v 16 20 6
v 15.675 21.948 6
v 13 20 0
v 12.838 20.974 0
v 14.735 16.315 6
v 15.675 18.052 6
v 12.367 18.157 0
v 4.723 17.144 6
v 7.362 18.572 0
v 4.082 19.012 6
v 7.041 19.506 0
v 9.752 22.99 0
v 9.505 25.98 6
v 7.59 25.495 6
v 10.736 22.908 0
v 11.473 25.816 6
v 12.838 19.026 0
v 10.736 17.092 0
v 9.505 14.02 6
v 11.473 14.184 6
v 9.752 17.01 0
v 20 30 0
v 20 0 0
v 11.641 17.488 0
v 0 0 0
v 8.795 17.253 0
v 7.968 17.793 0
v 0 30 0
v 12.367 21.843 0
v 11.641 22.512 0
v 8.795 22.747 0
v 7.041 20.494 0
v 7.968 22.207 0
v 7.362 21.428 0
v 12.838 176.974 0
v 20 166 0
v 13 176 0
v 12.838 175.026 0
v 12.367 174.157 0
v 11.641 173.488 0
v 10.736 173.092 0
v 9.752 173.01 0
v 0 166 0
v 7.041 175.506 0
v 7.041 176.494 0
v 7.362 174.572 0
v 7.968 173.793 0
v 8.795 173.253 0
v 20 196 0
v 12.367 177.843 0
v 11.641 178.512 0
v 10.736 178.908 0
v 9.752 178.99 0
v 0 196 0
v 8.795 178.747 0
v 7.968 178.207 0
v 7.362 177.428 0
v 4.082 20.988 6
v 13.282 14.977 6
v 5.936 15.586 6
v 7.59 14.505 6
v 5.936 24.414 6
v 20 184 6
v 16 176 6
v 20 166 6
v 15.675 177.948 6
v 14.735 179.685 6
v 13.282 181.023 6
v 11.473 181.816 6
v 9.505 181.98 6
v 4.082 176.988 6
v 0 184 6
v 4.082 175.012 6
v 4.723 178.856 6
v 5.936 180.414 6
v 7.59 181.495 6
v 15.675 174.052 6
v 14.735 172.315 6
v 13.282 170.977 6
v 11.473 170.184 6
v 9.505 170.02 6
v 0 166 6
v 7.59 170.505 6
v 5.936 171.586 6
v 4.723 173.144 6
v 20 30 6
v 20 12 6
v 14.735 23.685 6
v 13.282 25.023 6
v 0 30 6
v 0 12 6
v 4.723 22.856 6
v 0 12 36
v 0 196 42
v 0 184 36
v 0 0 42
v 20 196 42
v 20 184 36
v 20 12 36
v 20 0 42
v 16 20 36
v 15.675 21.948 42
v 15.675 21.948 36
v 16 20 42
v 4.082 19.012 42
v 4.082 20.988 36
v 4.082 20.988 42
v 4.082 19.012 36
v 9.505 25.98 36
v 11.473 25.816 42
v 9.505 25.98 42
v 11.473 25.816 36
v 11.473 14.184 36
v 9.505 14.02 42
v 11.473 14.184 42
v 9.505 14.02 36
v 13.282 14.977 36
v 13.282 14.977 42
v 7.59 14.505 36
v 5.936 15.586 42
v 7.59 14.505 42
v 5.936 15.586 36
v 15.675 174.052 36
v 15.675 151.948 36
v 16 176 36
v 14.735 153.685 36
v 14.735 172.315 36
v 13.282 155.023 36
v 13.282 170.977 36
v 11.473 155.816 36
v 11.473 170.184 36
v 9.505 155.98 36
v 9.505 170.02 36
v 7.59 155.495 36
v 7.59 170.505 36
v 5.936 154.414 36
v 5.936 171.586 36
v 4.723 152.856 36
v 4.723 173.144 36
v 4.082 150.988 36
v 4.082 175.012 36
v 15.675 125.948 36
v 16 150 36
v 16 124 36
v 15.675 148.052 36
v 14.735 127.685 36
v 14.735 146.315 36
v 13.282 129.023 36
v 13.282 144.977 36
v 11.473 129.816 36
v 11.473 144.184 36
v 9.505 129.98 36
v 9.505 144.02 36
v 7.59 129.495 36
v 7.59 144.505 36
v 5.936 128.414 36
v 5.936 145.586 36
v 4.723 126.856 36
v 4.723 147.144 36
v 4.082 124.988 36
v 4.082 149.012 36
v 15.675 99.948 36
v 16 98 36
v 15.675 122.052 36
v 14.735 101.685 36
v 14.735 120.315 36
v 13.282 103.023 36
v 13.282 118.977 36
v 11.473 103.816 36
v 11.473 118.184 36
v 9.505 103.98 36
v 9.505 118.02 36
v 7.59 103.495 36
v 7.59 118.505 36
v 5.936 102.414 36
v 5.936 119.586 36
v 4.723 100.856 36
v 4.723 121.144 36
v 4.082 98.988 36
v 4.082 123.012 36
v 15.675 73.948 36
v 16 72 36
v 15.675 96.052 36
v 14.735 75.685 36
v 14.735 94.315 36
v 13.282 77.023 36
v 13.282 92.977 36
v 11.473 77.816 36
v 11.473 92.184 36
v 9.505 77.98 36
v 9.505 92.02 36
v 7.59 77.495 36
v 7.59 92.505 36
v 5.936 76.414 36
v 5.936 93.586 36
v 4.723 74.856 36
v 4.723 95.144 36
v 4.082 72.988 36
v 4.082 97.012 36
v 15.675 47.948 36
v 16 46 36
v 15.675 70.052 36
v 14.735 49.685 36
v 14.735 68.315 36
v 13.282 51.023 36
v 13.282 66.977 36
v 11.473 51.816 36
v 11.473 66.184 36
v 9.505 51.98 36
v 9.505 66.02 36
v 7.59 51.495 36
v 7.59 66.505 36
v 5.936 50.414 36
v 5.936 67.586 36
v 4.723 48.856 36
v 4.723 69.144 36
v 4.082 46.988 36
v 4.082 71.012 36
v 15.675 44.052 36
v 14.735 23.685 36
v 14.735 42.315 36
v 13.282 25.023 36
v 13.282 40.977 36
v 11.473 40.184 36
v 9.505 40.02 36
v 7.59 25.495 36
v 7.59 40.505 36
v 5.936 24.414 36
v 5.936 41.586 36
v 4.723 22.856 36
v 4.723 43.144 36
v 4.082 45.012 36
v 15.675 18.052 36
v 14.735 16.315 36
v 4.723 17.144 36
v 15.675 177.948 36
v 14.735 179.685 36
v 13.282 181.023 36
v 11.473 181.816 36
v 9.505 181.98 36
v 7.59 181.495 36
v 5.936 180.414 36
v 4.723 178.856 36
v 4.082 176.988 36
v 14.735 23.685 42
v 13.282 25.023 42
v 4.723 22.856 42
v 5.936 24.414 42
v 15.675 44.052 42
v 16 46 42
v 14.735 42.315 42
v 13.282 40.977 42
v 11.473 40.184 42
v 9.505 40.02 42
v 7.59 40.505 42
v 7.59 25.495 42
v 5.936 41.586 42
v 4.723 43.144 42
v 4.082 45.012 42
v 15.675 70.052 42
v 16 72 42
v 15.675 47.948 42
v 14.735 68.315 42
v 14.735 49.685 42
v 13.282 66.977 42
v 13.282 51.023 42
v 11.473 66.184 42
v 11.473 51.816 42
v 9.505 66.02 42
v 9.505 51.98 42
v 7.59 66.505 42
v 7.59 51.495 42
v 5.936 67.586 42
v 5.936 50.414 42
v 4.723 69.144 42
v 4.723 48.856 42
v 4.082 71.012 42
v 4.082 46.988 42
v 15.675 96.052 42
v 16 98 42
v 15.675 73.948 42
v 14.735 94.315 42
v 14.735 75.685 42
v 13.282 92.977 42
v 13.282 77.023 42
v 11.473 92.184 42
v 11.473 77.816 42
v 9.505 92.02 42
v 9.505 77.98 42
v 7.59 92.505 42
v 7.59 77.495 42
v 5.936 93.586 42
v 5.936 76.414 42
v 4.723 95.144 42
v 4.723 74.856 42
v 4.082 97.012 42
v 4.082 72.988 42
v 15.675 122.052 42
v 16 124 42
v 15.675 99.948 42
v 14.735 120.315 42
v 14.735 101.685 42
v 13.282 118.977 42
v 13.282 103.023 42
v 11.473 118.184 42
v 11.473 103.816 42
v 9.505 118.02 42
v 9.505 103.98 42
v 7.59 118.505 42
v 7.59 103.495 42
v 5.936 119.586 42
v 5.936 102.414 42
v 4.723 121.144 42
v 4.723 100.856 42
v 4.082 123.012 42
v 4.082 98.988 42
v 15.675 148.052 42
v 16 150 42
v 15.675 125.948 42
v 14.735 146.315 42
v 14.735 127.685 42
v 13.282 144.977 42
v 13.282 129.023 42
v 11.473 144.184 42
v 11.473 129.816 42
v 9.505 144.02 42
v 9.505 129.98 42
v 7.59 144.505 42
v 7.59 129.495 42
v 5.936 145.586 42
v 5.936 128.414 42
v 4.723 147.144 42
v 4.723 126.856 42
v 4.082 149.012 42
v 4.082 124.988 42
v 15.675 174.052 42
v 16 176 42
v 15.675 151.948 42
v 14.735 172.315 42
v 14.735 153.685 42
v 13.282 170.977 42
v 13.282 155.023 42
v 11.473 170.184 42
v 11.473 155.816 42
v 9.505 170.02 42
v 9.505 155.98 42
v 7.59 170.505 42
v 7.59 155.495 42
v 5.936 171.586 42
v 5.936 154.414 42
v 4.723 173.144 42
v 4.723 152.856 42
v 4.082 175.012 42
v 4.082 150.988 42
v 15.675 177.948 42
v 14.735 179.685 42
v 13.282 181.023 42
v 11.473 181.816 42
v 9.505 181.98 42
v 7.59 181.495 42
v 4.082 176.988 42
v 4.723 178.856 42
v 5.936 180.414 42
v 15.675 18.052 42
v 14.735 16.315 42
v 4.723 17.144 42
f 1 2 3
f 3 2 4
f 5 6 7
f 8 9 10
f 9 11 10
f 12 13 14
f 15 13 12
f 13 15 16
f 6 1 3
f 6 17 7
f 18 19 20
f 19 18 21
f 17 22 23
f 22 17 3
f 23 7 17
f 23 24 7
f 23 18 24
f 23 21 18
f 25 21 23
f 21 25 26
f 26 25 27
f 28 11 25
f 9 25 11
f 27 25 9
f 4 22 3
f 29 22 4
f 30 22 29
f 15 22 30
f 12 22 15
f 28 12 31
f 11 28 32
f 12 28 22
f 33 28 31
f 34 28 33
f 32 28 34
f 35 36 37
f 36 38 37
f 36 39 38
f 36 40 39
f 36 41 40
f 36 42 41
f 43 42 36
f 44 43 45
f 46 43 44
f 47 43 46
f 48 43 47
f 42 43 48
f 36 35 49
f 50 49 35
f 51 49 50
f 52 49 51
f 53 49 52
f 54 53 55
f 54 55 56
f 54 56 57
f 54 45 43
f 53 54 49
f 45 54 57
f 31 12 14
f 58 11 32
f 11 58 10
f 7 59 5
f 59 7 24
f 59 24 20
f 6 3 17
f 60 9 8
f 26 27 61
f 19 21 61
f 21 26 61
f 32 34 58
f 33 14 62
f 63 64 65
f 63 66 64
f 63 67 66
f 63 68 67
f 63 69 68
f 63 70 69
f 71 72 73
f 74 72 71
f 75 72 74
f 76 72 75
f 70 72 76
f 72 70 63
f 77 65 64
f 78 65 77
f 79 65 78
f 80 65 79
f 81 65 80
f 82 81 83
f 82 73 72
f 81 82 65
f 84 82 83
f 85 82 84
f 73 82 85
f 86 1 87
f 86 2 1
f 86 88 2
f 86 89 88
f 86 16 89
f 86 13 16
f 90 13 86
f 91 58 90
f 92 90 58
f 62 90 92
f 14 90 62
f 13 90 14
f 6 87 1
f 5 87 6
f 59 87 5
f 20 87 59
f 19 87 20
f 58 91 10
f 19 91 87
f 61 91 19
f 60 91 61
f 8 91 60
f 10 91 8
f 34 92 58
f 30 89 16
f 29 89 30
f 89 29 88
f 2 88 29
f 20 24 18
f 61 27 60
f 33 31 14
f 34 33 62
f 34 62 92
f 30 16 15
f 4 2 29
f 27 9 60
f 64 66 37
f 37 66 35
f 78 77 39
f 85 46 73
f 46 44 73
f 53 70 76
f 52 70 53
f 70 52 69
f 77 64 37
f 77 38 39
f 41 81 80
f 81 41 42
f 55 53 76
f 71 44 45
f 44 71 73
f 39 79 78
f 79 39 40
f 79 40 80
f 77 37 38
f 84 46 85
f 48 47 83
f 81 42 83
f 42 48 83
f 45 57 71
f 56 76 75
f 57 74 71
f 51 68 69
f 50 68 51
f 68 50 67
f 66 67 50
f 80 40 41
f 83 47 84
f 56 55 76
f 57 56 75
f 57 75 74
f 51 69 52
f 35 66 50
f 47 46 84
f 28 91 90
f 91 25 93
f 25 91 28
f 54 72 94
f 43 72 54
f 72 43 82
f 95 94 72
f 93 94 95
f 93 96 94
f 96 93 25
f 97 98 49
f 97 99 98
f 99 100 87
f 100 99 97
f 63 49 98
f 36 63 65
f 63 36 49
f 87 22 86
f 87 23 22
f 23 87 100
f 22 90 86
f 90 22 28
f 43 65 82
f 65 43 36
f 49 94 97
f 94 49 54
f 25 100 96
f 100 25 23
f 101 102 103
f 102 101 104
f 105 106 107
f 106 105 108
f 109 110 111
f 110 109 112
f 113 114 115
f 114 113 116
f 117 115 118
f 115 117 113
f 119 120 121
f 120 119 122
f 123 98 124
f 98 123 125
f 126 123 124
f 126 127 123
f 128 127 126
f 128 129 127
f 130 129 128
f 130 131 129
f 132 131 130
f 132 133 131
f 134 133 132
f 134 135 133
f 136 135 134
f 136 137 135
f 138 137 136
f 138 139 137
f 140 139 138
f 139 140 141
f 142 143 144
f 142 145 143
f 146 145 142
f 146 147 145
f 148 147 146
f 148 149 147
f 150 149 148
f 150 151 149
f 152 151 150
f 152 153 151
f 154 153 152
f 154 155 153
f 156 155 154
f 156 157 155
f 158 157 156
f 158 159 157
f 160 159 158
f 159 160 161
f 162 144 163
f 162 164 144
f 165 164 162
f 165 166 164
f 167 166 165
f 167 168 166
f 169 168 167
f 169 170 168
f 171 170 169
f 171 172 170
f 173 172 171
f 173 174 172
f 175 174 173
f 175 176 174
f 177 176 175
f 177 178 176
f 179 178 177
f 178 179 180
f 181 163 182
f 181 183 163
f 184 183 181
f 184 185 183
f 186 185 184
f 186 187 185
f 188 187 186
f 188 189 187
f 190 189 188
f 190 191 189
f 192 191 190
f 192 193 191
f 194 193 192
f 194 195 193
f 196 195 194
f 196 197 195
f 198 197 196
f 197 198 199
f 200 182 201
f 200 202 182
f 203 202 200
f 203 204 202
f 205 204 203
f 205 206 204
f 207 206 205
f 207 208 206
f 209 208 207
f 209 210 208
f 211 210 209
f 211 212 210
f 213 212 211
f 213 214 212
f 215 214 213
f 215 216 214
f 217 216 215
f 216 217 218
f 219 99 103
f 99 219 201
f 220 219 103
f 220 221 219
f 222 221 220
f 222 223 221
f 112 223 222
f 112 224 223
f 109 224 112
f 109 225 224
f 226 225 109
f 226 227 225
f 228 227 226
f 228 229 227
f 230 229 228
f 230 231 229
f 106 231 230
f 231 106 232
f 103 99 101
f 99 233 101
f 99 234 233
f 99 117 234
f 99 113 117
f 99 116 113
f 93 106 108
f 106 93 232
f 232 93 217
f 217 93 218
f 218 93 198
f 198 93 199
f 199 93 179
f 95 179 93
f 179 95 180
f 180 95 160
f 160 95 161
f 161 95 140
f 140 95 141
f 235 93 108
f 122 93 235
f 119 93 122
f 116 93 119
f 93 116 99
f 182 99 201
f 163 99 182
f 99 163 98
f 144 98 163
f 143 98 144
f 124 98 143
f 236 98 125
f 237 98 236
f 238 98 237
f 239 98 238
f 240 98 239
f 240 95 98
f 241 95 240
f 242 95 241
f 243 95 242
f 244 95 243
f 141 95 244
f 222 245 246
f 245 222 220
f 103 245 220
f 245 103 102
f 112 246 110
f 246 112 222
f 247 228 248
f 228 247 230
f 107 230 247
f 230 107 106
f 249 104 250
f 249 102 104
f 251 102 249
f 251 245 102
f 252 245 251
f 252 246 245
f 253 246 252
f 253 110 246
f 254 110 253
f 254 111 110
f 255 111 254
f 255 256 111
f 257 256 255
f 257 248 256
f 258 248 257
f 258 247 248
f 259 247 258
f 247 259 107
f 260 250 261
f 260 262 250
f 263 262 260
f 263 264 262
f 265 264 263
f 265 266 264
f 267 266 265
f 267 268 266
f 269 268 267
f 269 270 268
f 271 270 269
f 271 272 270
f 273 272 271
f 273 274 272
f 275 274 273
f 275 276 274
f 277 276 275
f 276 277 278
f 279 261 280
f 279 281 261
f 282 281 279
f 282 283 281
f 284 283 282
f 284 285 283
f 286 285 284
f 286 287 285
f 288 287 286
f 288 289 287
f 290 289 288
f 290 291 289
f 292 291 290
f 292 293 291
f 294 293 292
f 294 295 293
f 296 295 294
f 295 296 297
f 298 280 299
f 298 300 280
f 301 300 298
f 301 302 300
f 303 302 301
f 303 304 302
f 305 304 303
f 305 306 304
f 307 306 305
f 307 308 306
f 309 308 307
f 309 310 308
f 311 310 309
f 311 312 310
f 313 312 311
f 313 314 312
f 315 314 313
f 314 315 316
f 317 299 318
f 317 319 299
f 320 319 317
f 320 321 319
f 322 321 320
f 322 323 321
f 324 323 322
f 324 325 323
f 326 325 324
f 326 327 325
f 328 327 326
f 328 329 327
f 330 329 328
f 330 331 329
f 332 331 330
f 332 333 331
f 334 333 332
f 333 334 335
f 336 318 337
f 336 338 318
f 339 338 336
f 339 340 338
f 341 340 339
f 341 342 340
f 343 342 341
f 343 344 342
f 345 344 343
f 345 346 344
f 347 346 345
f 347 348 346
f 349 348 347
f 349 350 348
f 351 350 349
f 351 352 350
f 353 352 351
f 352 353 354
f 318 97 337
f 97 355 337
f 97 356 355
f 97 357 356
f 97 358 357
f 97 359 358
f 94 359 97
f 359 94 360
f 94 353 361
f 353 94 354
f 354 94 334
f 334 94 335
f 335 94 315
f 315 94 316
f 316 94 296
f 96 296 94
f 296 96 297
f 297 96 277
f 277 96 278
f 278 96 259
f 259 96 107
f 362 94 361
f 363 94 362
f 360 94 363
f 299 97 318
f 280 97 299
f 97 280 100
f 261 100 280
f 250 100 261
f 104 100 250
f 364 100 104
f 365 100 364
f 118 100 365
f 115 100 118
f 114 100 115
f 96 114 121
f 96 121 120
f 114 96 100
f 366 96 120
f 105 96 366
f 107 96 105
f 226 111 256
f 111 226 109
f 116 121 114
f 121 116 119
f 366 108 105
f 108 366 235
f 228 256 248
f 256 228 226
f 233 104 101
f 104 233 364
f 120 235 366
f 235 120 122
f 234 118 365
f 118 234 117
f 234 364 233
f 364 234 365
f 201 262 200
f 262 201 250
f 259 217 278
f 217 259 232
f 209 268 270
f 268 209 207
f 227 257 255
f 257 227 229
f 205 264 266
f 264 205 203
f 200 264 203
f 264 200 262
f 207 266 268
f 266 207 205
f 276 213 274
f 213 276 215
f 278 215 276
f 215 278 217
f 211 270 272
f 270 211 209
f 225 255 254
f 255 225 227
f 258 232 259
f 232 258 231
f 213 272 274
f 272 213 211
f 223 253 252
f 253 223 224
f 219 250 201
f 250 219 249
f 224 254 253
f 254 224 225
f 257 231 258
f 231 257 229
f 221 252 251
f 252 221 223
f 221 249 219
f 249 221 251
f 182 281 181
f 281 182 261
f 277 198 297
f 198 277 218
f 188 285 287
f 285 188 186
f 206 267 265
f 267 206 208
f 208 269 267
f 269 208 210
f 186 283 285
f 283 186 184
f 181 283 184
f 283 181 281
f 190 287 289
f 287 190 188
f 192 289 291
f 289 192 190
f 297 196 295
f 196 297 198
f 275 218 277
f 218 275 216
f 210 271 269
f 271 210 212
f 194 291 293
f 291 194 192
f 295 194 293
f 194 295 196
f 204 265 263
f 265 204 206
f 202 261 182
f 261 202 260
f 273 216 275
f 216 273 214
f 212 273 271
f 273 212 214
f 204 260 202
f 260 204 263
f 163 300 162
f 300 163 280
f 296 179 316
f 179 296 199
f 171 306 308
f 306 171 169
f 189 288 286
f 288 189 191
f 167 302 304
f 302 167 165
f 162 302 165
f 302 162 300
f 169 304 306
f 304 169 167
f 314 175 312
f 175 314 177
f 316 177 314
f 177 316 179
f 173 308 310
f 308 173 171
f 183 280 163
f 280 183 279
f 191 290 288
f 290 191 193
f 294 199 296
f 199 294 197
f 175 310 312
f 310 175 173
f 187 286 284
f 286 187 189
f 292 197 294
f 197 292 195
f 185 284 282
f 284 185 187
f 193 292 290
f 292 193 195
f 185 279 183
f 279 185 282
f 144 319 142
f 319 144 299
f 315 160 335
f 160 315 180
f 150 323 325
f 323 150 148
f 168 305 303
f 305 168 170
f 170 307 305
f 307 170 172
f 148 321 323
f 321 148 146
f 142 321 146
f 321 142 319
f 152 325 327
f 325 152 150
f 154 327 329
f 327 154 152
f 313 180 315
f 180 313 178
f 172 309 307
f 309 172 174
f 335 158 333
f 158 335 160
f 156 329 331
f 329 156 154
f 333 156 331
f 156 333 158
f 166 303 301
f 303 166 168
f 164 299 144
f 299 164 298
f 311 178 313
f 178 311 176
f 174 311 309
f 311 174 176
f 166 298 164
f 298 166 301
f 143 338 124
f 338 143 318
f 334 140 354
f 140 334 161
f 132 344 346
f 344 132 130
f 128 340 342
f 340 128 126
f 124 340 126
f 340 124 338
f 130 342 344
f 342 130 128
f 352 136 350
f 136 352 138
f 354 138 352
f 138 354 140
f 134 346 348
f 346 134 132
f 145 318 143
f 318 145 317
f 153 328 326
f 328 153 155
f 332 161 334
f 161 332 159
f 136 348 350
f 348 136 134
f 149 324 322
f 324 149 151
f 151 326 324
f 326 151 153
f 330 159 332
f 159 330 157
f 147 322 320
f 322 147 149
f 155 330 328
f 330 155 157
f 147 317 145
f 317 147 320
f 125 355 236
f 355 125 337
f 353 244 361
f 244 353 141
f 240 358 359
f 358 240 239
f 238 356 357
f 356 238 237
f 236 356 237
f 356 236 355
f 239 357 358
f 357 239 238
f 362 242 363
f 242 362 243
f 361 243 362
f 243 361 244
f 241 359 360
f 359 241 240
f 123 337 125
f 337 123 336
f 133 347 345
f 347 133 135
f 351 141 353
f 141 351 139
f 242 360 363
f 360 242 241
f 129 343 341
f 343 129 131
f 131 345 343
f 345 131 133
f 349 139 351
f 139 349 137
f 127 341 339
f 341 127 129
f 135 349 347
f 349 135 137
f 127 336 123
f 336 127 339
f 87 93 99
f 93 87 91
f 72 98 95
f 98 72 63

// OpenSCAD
// Written by Jordi Riera-Baburés <jrierab@gmail.com>
// ManetaNevera V1.0
//
// To the extent possible under law, the author(s) have dedicated all
// copyright and related and neighboring rights to this software to the
// public domain worldwide. This software is distributed without any
// warranty.
//
// You should have received a copy of the CC0 Public Domain
// Dedication along with this software.
// If not, see <http://creativecommons.org/publicdomain/zero/1.0/>.



// Variables - base
H = 6;
W = 20;
L = 196;
S = 156;

// Variables - laterals
HL = 30;
WL = 2*H;

union() {
    // Base
    difference() {
        cube([W, L, H], false);
        union() {
            translate([W/2, 20, 0])
                cylinder(h = H, r1 = 3, r2 = 6);
            translate([W/2, L - 20, 0])
                cylinder(h = H, r1 = 3, r2 = 6);
            translate([0, 30, 0])
                cube([W, L - 60, H], false);
        }
    }

    // Laterals
    translate([0, 0, H])
        cube([W, WL, HL + H/2], false);
        
    translate([0, L - WL, H])
        cube([W, WL, HL + H/2], false);

    // Top
    difference() {
        translate([0, 0, HL + H])
            cube([W, L, H], false);
        union() {
            translate([W/2, 20, HL + H])
                cylinder(h = H, r1 = 6, r2 = 6);
            translate([W/2, 46, HL + H])
                cylinder(h = H, r1 = 6, r2 = 6);
            translate([W/2, 72, HL + H])
                cylinder(h = H, r1 = 6, r2 = 6);
            translate([W/2, 98, HL + H])
                cylinder(h = H, r1 = 6, r2 = 6);
            translate([W/2, L - 72, HL + H])
                cylinder(h = H, r1 = 6, r2 = 6);
            translate([W/2, L - 46, HL + H])
                cylinder(h = H, r1 = 6, r2 = 6);
            translate([W/2, L - 20, HL + H])
                cylinder(h = H, r1 = 6, r2 = 6);
        }
    }
}
